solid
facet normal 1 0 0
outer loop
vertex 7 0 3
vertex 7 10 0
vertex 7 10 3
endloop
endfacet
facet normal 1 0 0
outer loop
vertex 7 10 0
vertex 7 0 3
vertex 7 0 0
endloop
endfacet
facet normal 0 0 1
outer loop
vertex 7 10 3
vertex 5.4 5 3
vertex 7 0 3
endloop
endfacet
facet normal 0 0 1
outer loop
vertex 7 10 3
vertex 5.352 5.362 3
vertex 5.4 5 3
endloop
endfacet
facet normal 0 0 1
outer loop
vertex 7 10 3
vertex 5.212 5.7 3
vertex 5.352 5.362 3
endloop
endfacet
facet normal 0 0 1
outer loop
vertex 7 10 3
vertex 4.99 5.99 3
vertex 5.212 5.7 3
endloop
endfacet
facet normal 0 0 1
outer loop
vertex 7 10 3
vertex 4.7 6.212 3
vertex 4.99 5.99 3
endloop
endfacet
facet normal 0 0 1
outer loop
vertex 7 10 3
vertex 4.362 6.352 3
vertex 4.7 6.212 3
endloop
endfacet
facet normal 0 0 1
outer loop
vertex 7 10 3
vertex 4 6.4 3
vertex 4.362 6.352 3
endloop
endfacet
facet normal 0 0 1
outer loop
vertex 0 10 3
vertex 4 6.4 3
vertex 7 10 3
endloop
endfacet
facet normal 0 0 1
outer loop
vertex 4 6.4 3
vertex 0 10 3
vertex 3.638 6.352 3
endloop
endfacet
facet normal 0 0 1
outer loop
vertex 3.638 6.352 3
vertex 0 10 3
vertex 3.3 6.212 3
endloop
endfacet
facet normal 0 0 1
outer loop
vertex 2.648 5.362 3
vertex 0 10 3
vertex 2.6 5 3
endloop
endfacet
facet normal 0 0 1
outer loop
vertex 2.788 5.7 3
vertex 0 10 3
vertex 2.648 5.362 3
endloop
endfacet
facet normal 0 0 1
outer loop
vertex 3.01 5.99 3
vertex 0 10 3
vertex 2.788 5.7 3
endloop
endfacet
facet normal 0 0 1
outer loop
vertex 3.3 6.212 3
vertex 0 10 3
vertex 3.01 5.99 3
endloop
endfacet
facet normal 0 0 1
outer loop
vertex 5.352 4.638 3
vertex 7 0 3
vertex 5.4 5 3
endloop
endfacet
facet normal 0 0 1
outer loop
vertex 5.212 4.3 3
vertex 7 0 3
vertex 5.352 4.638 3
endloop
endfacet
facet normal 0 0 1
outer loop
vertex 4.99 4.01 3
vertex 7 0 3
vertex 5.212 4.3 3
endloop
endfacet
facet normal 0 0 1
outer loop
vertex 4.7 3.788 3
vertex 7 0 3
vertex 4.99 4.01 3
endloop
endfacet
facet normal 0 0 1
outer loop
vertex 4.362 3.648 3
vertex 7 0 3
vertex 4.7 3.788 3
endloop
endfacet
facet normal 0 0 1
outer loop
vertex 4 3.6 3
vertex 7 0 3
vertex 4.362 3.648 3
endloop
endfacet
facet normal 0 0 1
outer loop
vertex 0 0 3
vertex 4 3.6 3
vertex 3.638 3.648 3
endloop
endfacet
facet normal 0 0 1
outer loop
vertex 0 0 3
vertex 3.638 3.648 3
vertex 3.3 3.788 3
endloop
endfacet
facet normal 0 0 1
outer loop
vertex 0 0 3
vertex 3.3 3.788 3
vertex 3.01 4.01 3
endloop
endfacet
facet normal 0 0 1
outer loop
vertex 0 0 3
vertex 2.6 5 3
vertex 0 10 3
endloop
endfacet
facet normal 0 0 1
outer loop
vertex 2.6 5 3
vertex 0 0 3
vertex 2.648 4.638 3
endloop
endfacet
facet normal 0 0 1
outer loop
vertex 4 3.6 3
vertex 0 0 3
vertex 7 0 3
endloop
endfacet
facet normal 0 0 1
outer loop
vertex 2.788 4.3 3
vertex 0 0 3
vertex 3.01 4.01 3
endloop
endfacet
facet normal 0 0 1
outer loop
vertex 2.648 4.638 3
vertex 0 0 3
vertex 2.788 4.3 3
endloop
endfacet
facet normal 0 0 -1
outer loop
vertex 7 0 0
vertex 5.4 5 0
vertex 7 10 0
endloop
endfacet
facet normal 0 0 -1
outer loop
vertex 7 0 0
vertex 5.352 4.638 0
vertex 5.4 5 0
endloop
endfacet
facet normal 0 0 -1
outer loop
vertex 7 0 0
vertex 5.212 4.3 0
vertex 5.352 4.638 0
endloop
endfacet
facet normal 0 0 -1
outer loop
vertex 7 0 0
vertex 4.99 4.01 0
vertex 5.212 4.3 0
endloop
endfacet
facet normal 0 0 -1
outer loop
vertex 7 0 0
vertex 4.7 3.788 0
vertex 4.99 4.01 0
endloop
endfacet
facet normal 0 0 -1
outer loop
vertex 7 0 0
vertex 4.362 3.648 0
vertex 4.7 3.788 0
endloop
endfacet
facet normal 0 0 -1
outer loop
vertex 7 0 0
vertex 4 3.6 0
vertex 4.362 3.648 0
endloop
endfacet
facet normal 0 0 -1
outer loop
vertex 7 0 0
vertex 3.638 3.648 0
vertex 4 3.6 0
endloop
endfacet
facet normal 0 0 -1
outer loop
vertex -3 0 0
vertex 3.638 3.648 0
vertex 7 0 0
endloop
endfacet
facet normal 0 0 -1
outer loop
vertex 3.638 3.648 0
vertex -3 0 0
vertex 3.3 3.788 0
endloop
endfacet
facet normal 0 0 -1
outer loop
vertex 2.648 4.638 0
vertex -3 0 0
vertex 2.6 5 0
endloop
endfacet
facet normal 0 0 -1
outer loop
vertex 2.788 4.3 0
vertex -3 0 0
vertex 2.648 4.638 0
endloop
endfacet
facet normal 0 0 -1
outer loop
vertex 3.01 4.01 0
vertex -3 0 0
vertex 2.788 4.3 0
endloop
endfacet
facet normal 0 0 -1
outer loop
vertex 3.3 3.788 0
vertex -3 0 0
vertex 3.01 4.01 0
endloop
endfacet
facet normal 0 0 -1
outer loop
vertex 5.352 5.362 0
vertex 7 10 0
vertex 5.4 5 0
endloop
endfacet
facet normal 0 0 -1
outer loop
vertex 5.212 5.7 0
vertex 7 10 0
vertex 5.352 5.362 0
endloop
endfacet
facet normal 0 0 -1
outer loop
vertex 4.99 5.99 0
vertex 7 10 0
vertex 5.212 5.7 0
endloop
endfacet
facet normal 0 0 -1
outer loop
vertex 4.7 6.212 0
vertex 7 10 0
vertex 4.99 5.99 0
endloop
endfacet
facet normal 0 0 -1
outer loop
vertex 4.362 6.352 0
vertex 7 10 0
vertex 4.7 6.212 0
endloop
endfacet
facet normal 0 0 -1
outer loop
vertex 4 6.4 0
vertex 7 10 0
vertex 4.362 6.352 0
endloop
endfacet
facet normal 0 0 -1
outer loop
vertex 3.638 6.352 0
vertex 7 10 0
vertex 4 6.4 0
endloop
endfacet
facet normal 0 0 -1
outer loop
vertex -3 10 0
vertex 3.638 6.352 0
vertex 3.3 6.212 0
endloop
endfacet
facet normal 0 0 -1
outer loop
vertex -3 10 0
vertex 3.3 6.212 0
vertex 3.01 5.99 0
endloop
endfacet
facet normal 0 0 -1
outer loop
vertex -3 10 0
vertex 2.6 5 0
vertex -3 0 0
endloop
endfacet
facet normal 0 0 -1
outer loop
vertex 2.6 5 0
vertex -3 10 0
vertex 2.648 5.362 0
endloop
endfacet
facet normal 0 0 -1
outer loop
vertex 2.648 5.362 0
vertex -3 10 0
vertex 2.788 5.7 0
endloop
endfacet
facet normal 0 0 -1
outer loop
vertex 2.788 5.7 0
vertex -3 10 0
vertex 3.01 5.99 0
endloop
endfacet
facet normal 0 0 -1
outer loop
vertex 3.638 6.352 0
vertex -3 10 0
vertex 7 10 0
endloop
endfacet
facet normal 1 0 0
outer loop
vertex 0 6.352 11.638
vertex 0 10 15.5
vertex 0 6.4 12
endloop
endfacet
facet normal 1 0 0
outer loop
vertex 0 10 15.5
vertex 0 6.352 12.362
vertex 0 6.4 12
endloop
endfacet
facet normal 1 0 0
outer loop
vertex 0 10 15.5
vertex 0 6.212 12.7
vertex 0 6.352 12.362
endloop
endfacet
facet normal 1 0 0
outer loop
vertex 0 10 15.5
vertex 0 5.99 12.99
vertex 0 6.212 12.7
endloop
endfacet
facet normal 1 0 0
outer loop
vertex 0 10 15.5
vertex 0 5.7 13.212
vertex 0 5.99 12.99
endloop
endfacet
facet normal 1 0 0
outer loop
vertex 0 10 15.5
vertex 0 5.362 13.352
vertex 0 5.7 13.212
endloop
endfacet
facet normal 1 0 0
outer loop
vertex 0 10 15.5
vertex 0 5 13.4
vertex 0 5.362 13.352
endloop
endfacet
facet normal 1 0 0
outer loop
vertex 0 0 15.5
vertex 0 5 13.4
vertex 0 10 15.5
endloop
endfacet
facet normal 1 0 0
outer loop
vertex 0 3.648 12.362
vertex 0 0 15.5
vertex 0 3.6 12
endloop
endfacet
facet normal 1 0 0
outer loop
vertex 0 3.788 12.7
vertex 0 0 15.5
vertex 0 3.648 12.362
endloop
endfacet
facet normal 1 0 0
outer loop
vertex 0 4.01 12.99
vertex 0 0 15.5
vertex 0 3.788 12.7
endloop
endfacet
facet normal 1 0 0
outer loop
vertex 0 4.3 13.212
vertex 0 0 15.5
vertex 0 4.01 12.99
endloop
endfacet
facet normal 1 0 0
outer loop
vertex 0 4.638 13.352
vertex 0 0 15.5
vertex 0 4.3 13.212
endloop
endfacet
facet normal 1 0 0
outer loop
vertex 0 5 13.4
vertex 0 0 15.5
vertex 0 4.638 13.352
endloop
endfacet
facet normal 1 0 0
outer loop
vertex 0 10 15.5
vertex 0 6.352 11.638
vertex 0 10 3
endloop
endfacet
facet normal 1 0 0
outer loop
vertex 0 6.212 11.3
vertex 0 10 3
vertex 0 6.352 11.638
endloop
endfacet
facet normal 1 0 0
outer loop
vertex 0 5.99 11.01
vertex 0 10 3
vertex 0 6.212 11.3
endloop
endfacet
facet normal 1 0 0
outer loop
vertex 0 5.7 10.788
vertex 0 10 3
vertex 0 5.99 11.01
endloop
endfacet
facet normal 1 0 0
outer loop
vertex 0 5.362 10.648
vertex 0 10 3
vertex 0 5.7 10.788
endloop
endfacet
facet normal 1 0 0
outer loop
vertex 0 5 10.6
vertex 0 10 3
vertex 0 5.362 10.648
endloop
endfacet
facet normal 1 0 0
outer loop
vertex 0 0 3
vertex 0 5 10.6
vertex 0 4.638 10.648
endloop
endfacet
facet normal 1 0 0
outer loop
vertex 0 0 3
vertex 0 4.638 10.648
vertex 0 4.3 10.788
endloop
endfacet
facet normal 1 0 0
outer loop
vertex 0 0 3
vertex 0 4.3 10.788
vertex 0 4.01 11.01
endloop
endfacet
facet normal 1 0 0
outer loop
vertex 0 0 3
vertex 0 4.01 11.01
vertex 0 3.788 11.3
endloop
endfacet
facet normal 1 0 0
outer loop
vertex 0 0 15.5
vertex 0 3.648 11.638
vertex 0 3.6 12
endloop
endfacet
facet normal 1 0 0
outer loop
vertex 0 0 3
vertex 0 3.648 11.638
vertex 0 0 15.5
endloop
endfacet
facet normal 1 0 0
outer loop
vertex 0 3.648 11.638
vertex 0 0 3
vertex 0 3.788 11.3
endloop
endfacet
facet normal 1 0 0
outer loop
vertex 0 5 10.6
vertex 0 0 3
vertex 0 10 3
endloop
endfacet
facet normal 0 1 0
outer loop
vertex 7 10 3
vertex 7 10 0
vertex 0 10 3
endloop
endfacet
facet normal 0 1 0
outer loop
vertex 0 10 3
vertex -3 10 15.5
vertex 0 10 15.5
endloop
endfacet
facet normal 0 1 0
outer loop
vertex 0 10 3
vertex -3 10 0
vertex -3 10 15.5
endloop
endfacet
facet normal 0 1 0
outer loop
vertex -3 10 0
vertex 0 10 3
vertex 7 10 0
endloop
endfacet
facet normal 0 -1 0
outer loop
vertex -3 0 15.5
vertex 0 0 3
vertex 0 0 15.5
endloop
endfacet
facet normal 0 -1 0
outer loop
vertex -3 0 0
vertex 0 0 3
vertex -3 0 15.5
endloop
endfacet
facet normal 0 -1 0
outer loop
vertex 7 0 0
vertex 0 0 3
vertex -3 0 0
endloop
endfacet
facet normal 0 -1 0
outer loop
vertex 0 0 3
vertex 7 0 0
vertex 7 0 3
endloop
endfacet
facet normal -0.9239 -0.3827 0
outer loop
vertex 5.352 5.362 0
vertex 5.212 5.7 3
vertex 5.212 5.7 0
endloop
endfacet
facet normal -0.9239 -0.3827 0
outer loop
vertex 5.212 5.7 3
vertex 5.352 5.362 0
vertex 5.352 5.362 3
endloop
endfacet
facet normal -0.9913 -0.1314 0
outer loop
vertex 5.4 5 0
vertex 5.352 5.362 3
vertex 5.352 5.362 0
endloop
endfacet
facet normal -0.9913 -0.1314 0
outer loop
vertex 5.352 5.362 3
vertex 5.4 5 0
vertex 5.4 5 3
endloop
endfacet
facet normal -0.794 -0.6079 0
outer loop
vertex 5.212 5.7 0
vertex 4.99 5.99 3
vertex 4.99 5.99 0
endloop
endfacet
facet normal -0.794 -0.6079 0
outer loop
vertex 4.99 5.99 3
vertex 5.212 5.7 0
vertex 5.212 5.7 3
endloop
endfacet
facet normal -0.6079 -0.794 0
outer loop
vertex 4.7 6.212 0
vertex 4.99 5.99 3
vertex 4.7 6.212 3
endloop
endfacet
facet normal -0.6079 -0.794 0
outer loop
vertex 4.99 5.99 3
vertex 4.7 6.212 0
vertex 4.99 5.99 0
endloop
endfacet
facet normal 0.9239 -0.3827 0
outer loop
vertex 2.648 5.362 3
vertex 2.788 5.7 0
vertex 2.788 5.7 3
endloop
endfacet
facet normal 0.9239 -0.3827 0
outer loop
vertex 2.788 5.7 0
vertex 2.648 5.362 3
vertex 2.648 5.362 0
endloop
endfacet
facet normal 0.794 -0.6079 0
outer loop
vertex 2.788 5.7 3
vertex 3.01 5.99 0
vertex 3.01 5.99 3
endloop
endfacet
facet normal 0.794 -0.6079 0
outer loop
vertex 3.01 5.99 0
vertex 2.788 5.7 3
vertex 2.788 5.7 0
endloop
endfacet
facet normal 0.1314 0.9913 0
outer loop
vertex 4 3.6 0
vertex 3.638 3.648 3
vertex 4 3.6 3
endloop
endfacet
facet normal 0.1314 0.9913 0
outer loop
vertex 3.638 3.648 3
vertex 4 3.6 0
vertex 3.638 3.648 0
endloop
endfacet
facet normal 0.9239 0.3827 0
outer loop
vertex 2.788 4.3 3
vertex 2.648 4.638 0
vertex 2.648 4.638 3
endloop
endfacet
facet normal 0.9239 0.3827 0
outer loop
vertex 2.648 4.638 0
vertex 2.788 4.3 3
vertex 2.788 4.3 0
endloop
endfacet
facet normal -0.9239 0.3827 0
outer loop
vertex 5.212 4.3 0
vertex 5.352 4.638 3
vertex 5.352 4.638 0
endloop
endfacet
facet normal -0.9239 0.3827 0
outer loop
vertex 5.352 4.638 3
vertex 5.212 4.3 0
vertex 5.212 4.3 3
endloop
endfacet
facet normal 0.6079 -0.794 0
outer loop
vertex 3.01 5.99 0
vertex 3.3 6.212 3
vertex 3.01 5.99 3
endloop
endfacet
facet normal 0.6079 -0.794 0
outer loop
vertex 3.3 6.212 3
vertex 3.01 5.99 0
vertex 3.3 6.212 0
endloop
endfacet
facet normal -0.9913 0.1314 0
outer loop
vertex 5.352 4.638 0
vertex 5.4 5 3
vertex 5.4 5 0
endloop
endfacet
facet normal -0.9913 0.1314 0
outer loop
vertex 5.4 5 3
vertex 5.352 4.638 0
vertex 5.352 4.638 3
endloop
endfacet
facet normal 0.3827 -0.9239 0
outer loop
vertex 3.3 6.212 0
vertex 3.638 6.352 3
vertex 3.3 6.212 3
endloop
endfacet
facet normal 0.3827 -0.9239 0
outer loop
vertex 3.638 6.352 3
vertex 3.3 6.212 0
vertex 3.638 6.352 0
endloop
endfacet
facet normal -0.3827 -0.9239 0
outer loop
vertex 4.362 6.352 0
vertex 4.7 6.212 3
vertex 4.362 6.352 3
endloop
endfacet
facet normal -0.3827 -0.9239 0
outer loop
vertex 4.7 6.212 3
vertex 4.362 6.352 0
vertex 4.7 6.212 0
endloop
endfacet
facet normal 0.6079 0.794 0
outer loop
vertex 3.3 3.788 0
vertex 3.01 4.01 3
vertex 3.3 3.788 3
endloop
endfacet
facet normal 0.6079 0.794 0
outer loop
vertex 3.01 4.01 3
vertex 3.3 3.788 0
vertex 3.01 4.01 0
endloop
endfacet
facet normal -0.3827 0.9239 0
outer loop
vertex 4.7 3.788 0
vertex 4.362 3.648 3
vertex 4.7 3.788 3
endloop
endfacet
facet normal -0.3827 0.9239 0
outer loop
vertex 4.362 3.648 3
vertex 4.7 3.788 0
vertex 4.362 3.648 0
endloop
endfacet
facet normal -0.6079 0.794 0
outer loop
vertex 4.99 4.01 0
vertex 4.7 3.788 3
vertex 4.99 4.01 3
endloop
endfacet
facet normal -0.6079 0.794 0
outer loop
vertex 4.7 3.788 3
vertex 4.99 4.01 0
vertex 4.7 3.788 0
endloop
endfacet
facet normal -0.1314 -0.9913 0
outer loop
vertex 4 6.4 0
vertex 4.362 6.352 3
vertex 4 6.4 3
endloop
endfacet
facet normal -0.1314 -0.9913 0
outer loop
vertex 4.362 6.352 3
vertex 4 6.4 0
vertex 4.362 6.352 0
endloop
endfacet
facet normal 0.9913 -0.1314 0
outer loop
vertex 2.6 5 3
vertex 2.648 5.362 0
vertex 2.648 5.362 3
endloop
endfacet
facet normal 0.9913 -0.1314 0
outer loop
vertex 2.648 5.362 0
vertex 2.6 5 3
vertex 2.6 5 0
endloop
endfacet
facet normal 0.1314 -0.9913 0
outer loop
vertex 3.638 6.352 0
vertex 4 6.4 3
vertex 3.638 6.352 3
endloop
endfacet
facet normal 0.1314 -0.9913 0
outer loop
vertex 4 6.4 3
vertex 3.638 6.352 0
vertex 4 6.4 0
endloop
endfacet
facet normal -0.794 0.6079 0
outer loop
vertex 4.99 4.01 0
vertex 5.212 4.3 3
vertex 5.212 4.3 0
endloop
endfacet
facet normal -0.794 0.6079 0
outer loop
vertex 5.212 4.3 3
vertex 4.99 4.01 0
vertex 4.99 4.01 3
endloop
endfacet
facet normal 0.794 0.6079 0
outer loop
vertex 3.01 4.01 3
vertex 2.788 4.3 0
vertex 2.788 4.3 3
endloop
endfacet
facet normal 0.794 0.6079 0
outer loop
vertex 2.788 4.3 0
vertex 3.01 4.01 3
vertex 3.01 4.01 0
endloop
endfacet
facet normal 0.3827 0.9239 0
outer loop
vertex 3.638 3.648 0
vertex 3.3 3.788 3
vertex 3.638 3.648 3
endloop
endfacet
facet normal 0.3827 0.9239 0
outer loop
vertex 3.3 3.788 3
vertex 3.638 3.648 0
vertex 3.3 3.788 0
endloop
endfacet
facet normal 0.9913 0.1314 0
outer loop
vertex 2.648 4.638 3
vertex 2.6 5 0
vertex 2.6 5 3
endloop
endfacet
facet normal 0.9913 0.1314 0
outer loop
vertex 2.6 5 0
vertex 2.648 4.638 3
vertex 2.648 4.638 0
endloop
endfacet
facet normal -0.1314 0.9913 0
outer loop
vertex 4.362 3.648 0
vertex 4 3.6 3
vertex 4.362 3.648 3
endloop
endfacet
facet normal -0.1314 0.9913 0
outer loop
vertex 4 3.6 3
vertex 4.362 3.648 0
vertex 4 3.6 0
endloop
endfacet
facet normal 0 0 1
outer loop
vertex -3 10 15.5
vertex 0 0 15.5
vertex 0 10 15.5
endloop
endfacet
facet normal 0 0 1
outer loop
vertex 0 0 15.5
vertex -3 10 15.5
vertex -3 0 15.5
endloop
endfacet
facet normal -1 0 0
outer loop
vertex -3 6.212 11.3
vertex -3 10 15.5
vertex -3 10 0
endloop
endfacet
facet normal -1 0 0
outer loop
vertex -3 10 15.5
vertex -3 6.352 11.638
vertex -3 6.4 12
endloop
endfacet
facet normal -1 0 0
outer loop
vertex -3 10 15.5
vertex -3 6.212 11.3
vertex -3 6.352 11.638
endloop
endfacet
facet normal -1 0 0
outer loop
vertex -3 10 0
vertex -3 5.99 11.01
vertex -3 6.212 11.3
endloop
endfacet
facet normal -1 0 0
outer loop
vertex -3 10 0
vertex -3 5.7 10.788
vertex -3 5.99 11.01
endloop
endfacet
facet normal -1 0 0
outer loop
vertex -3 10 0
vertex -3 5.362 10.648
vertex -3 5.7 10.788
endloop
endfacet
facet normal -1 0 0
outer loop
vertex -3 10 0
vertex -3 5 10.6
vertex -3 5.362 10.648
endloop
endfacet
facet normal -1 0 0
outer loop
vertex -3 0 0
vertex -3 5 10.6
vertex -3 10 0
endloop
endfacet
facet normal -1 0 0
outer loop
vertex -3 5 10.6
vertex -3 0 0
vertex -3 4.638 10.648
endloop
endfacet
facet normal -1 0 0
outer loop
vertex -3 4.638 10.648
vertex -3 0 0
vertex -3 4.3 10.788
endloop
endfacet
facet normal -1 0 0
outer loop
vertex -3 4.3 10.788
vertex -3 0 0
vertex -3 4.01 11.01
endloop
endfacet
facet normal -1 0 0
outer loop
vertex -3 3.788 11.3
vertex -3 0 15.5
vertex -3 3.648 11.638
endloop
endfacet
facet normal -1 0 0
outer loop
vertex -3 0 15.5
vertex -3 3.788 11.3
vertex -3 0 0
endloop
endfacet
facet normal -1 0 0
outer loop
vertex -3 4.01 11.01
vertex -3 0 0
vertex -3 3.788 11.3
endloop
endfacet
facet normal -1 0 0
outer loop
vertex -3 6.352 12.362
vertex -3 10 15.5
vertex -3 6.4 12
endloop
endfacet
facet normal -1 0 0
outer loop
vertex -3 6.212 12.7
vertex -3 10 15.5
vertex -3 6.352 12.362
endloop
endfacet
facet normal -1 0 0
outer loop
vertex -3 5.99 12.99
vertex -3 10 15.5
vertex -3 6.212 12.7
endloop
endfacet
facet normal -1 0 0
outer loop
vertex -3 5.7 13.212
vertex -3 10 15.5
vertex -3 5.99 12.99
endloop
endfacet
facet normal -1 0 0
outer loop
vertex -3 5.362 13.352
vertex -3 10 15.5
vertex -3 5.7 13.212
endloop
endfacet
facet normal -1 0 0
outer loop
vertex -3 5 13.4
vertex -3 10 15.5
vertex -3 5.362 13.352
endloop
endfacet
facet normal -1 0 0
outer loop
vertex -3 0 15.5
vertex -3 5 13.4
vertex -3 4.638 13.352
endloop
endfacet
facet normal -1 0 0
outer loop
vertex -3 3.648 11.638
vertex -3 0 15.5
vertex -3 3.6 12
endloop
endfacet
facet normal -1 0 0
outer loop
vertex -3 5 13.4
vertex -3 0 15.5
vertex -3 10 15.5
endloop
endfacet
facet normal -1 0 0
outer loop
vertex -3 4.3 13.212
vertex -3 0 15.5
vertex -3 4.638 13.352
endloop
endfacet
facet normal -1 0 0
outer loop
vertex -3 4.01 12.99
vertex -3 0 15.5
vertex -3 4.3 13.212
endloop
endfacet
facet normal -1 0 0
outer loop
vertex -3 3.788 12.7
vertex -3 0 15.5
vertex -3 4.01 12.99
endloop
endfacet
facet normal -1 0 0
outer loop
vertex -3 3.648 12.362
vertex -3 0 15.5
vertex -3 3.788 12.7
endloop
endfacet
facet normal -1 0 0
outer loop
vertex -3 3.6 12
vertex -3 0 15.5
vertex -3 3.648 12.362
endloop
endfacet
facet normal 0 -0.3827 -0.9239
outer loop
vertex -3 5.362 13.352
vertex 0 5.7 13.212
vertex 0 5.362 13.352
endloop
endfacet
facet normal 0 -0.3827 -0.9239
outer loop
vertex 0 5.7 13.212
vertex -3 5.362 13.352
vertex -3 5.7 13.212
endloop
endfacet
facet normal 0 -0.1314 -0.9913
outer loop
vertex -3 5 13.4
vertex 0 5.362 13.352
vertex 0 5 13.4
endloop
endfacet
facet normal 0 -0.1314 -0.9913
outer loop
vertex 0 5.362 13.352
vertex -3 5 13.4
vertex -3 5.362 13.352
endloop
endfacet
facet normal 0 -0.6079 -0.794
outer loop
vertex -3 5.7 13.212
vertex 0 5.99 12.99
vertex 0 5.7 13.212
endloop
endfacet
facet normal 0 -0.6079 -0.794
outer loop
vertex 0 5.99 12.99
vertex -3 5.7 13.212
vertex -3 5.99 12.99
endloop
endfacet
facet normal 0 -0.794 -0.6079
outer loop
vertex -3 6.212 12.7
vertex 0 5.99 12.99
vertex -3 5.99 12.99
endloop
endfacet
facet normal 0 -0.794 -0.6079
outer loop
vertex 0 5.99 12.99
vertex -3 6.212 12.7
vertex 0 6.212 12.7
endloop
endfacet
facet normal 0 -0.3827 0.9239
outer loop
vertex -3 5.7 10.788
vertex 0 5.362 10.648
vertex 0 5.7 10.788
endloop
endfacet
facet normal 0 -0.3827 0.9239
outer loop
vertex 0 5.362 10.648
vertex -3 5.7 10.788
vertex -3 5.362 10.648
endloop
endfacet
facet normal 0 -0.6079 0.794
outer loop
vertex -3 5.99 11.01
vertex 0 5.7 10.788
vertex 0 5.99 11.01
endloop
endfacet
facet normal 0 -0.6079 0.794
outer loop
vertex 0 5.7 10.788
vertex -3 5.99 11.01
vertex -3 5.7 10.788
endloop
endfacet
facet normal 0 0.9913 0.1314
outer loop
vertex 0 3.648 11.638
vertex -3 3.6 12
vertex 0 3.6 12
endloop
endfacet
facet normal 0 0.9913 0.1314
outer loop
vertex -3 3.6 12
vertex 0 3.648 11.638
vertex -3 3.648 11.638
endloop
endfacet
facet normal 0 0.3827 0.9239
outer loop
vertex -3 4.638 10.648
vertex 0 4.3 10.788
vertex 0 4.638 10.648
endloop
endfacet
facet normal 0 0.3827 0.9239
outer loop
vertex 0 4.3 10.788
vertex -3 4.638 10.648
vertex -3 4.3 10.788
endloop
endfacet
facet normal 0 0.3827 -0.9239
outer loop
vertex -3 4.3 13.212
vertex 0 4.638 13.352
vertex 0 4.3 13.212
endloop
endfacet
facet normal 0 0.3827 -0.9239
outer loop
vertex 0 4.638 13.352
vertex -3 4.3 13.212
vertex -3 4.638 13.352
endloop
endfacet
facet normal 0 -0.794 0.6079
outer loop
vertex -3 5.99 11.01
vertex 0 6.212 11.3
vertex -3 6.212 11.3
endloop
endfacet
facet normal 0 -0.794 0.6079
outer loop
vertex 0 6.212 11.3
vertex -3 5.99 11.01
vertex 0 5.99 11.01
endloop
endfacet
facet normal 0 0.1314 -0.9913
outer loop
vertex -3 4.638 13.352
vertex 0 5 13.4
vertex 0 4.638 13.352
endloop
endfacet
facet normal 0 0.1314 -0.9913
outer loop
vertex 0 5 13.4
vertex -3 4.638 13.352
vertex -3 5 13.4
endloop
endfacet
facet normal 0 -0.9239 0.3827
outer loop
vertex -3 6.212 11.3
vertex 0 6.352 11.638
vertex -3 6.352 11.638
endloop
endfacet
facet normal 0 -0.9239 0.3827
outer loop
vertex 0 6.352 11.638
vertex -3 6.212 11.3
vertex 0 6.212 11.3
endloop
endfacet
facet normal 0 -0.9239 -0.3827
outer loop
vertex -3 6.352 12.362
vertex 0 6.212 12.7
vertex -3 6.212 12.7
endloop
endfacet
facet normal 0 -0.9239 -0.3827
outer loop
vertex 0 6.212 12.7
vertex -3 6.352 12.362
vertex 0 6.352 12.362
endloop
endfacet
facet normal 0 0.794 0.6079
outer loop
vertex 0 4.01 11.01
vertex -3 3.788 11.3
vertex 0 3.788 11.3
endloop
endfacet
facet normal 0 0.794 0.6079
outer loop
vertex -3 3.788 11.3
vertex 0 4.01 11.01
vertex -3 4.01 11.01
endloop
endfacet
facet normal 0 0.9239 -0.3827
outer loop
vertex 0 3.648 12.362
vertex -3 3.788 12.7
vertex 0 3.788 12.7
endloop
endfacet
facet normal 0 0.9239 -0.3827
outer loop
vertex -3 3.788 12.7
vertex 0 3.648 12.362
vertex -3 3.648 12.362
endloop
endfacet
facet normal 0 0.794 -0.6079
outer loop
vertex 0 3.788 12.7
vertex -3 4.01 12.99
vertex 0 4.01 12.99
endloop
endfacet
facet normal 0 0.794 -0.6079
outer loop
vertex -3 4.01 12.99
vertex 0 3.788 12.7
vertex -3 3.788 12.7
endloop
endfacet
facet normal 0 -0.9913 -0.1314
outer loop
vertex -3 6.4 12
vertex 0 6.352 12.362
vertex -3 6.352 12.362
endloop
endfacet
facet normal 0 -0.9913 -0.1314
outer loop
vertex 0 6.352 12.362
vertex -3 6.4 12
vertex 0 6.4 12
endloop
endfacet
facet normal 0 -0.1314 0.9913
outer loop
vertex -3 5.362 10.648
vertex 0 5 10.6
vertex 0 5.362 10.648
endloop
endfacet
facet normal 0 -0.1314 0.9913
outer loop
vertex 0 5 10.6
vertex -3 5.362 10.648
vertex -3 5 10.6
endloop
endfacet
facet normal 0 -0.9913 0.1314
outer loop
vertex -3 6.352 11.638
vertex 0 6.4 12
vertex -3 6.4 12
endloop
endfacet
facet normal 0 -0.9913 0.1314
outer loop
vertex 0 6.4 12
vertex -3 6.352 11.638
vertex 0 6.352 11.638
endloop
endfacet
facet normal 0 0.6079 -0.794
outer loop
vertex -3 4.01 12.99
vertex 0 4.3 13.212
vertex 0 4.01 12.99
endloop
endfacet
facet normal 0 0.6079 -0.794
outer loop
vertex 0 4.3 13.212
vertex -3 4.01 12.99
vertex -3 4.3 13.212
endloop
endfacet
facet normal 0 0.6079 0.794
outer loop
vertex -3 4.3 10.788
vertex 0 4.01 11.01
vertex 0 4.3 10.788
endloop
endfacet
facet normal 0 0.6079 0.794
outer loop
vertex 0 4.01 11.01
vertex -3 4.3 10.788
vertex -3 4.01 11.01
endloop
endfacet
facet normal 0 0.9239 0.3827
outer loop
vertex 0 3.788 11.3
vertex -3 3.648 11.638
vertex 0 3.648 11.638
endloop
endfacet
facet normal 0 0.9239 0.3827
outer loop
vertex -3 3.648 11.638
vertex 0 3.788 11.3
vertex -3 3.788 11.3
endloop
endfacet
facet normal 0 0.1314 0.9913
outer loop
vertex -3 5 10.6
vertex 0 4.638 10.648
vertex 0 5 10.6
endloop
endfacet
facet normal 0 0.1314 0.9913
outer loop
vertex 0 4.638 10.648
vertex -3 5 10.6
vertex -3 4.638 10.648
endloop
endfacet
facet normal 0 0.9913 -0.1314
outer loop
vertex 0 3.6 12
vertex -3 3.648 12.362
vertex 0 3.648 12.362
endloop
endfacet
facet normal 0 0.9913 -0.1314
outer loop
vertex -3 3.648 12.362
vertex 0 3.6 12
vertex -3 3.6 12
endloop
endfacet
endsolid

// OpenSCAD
THICKNESS = 3;
HOLE_RADIUS = 1.4;
FACETS=24;


difference(){
    cube([7, 10, THICKNESS]);
    translate([7-THICKNESS, 5, -0.1]){
        cylinder(r=HOLE_RADIUS, h=THICKNESS + 0.2, center=false, $fn=FACETS);
    }
}
rotate([0,-90,0]){
    difference(){
        cube([12.5 + THICKNESS, 10, THICKNESS]);
        translate([12, 5, -0.1]){
            cylinder(r=HOLE_RADIUS, h=THICKNESS + 0.2, center=false, $fn=FACETS);
        }
    }
}
